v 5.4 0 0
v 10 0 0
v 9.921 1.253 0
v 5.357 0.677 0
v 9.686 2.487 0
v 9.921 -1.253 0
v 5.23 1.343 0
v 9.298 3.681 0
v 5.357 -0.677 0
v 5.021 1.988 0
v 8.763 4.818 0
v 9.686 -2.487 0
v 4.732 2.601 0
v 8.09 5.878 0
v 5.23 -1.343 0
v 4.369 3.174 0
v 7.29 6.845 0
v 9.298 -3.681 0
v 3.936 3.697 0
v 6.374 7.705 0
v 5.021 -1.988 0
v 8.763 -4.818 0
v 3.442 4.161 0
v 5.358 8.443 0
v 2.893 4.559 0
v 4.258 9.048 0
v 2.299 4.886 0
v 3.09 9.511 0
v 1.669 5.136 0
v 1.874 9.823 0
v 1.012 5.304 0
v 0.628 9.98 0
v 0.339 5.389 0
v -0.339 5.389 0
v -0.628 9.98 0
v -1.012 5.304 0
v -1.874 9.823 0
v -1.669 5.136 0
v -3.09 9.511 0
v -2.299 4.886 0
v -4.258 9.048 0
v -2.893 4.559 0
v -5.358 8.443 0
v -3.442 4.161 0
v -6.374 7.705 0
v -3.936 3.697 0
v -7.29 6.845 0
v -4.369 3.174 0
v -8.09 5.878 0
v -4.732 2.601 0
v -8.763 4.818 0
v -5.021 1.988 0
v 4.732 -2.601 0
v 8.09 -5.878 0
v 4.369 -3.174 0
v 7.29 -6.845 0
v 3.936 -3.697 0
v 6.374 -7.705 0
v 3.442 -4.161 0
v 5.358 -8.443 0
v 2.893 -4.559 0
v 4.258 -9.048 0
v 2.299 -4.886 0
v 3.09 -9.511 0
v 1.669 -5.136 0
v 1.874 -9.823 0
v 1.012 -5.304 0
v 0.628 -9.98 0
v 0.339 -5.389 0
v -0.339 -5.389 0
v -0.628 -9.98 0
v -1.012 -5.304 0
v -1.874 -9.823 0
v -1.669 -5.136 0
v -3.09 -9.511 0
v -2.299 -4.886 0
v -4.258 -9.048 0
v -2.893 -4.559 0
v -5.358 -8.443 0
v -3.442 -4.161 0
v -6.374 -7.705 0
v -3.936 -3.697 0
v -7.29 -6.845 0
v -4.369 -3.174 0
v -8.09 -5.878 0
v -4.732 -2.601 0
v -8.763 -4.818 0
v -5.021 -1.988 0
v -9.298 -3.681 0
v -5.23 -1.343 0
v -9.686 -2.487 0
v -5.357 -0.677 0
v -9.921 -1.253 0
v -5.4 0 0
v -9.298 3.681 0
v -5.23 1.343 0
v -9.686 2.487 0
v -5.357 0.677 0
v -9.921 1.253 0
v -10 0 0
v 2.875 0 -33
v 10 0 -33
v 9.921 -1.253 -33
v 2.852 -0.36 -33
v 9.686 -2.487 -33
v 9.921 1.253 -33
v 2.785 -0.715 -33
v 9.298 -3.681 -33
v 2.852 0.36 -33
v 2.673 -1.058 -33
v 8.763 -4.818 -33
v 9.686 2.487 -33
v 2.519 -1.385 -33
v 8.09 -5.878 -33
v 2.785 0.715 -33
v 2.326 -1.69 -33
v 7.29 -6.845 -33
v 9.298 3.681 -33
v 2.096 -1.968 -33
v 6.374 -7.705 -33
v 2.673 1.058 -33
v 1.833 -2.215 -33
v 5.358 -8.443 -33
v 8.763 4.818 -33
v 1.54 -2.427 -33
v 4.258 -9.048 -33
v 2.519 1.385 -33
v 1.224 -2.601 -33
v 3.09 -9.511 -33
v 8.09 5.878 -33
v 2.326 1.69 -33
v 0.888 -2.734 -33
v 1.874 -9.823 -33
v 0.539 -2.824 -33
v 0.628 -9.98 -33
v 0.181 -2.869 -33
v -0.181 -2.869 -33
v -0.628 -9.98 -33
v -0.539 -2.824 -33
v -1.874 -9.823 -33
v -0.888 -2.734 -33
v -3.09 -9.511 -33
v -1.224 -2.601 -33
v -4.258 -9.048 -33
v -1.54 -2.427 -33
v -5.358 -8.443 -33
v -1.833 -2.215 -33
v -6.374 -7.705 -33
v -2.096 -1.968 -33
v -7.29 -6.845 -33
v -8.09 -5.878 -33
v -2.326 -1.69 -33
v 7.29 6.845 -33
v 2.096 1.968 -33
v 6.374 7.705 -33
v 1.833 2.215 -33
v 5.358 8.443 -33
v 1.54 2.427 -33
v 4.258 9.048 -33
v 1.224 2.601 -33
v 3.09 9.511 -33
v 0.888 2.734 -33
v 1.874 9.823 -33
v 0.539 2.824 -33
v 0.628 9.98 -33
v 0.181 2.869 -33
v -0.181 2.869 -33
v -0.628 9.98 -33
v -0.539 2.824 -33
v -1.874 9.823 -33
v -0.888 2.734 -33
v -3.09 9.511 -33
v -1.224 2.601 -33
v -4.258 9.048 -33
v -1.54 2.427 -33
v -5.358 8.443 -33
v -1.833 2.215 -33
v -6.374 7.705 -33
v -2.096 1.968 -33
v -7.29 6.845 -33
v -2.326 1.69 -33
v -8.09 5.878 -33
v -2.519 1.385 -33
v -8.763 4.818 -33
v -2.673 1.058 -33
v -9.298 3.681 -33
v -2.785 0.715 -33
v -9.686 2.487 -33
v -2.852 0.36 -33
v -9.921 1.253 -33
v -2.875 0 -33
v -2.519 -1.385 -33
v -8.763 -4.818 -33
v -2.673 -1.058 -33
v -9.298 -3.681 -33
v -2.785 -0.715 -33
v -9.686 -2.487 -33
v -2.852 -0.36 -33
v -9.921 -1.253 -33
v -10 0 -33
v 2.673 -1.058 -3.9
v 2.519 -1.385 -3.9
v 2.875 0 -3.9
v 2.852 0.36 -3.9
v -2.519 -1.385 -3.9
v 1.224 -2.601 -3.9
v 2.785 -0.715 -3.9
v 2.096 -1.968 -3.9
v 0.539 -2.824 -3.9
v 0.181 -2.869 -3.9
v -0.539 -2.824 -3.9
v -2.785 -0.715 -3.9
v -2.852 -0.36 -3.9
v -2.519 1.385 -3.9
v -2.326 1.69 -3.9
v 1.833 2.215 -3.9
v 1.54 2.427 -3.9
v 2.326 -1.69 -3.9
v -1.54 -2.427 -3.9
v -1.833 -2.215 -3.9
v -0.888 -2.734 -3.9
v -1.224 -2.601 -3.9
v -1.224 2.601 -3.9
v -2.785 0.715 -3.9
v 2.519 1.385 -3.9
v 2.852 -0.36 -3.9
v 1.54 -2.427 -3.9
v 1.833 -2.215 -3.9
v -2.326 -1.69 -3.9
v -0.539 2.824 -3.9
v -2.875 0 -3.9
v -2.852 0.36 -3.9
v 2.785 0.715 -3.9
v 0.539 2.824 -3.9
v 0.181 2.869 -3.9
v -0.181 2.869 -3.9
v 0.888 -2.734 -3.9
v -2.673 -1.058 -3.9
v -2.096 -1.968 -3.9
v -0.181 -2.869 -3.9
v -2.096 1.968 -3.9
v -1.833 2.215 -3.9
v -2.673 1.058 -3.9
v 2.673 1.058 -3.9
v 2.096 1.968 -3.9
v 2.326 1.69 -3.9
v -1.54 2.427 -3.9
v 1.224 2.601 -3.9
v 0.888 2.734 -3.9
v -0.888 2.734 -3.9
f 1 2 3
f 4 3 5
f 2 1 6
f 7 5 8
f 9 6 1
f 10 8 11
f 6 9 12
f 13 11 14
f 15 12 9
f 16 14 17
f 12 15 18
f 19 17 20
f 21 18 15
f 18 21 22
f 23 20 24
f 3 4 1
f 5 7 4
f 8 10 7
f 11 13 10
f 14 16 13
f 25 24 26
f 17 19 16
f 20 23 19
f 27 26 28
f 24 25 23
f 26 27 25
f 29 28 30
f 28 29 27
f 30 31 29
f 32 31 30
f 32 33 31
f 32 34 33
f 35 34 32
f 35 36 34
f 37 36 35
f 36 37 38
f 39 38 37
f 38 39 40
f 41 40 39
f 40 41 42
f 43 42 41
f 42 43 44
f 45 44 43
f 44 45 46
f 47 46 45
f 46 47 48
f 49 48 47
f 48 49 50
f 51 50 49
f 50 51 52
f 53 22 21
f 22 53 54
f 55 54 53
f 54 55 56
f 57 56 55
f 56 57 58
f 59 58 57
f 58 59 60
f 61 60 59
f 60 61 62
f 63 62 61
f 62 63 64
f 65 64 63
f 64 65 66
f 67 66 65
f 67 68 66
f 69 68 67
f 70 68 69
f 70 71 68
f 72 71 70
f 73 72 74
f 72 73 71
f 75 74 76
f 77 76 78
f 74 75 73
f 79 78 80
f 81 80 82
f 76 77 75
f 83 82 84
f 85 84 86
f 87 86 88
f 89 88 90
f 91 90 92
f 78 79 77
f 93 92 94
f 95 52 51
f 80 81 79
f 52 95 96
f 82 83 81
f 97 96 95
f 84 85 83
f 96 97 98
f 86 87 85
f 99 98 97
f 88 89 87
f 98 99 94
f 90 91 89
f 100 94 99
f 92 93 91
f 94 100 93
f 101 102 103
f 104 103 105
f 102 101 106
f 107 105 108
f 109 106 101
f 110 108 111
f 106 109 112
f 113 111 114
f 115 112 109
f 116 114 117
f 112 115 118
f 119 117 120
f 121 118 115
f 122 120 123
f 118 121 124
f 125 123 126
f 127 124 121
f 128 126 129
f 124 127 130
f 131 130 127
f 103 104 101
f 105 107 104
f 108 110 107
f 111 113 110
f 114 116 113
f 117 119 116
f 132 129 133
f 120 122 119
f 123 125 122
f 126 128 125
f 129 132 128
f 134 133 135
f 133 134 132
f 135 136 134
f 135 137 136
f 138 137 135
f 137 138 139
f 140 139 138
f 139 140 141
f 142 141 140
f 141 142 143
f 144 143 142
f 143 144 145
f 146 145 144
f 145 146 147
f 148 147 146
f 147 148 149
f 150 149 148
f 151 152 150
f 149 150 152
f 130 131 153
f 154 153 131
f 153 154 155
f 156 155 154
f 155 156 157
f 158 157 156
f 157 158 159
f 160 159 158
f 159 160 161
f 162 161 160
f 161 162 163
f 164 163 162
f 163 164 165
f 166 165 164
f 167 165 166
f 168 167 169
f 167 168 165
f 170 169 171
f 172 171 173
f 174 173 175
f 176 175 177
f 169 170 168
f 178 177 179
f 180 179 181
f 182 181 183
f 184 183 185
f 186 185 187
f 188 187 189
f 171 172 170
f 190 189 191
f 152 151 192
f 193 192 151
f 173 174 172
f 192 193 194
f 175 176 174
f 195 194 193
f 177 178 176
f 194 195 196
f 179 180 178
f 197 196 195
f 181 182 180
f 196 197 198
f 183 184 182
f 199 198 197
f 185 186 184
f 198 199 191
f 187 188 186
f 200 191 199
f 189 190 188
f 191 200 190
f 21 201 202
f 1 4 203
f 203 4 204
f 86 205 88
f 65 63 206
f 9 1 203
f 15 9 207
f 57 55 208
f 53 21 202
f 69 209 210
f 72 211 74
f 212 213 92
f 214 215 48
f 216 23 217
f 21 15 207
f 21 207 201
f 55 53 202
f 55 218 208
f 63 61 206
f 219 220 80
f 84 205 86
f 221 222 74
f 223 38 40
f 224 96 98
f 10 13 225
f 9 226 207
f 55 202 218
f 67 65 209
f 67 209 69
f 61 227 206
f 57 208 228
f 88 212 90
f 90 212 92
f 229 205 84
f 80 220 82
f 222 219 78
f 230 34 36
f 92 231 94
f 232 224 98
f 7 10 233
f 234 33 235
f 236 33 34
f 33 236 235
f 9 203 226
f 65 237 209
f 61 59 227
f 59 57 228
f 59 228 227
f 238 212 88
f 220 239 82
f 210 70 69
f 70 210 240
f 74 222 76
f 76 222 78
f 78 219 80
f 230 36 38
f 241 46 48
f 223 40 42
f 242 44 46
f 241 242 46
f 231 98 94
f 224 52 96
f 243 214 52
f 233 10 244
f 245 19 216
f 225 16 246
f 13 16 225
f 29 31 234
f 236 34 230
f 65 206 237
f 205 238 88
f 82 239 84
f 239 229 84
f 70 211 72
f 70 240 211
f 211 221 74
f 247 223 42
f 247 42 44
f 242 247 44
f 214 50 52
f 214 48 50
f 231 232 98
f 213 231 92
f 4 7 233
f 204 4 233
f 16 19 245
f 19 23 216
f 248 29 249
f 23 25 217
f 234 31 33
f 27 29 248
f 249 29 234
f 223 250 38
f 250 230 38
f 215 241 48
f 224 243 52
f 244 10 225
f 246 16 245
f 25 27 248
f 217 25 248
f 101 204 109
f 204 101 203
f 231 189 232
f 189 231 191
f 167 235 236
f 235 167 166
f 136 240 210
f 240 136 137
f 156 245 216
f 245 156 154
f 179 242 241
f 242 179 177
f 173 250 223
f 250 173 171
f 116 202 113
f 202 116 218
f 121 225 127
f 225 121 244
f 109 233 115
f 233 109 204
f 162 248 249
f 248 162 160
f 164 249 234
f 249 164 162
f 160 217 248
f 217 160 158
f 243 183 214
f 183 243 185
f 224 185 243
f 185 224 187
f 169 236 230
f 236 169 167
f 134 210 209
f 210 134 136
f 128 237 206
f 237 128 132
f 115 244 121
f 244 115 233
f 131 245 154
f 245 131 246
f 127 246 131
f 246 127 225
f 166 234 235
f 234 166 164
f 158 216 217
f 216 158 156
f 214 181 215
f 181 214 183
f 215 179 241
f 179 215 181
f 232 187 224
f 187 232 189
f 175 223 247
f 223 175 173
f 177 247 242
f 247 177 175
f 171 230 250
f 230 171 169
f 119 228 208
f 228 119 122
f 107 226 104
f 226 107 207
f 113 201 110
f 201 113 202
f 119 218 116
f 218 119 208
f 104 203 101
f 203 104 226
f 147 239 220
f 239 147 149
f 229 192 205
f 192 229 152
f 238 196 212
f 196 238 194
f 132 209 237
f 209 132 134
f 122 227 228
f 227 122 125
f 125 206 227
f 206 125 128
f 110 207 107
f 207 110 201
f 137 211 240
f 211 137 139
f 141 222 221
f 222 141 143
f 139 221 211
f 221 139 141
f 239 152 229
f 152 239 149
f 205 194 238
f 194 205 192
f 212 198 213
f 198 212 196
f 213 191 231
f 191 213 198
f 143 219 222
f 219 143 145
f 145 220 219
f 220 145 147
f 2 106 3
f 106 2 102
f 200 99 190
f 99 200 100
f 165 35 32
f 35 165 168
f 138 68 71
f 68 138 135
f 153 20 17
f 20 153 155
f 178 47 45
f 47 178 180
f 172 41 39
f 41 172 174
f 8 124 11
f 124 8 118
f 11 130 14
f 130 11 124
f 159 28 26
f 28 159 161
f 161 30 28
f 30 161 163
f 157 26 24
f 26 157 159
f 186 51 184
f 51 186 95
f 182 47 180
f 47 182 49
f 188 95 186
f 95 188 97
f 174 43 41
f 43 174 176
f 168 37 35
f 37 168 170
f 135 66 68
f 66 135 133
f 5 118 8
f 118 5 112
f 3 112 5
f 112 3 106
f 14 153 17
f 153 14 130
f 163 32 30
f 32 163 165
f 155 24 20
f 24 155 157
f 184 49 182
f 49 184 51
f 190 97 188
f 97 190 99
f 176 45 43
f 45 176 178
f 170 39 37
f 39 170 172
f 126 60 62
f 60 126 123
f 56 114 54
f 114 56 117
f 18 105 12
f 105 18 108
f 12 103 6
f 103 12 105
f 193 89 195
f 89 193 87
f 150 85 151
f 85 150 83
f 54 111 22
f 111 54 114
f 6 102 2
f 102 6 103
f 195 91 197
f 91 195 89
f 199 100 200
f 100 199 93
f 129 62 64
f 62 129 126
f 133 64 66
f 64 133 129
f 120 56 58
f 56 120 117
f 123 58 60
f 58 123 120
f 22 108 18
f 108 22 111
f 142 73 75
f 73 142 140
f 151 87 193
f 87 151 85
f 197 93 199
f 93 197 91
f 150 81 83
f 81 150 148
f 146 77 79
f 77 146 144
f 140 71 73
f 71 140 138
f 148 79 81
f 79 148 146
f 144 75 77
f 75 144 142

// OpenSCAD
$fn = 50;


difference() {
	union() {
		translate(v = [0, 0, -33.0000000000]) {
			cylinder(h = 33, r = 10.0000000000);
		}
		cylinder(h = 0, r = 16.0000000000);
	}
	union() {
		translate(v = [0, 0, 0]) {
			rotate(a = [0, 0, 0]) {
				difference() {
					union() {
						#translate(v = [0, 0, -33.0000000000]) {
							cylinder(h = 33, r = 2.6000000000);
						}
						#translate(v = [0, 0, -3.9000000000]) {
							cylinder(h = 3.9000000000, r1 = 2.8750000000, r2 = 5.4000000000);
						}
						#translate(v = [0, 0, -33.0000000000]) {
							cylinder(h = 33, r = 2.8750000000);
						}
						#translate(v = [0, 0, -33.0000000000]) {
							cylinder(h = 33, r = 2.6000000000);
						}
					}
					union();
				}
			}
		}
	}
}
